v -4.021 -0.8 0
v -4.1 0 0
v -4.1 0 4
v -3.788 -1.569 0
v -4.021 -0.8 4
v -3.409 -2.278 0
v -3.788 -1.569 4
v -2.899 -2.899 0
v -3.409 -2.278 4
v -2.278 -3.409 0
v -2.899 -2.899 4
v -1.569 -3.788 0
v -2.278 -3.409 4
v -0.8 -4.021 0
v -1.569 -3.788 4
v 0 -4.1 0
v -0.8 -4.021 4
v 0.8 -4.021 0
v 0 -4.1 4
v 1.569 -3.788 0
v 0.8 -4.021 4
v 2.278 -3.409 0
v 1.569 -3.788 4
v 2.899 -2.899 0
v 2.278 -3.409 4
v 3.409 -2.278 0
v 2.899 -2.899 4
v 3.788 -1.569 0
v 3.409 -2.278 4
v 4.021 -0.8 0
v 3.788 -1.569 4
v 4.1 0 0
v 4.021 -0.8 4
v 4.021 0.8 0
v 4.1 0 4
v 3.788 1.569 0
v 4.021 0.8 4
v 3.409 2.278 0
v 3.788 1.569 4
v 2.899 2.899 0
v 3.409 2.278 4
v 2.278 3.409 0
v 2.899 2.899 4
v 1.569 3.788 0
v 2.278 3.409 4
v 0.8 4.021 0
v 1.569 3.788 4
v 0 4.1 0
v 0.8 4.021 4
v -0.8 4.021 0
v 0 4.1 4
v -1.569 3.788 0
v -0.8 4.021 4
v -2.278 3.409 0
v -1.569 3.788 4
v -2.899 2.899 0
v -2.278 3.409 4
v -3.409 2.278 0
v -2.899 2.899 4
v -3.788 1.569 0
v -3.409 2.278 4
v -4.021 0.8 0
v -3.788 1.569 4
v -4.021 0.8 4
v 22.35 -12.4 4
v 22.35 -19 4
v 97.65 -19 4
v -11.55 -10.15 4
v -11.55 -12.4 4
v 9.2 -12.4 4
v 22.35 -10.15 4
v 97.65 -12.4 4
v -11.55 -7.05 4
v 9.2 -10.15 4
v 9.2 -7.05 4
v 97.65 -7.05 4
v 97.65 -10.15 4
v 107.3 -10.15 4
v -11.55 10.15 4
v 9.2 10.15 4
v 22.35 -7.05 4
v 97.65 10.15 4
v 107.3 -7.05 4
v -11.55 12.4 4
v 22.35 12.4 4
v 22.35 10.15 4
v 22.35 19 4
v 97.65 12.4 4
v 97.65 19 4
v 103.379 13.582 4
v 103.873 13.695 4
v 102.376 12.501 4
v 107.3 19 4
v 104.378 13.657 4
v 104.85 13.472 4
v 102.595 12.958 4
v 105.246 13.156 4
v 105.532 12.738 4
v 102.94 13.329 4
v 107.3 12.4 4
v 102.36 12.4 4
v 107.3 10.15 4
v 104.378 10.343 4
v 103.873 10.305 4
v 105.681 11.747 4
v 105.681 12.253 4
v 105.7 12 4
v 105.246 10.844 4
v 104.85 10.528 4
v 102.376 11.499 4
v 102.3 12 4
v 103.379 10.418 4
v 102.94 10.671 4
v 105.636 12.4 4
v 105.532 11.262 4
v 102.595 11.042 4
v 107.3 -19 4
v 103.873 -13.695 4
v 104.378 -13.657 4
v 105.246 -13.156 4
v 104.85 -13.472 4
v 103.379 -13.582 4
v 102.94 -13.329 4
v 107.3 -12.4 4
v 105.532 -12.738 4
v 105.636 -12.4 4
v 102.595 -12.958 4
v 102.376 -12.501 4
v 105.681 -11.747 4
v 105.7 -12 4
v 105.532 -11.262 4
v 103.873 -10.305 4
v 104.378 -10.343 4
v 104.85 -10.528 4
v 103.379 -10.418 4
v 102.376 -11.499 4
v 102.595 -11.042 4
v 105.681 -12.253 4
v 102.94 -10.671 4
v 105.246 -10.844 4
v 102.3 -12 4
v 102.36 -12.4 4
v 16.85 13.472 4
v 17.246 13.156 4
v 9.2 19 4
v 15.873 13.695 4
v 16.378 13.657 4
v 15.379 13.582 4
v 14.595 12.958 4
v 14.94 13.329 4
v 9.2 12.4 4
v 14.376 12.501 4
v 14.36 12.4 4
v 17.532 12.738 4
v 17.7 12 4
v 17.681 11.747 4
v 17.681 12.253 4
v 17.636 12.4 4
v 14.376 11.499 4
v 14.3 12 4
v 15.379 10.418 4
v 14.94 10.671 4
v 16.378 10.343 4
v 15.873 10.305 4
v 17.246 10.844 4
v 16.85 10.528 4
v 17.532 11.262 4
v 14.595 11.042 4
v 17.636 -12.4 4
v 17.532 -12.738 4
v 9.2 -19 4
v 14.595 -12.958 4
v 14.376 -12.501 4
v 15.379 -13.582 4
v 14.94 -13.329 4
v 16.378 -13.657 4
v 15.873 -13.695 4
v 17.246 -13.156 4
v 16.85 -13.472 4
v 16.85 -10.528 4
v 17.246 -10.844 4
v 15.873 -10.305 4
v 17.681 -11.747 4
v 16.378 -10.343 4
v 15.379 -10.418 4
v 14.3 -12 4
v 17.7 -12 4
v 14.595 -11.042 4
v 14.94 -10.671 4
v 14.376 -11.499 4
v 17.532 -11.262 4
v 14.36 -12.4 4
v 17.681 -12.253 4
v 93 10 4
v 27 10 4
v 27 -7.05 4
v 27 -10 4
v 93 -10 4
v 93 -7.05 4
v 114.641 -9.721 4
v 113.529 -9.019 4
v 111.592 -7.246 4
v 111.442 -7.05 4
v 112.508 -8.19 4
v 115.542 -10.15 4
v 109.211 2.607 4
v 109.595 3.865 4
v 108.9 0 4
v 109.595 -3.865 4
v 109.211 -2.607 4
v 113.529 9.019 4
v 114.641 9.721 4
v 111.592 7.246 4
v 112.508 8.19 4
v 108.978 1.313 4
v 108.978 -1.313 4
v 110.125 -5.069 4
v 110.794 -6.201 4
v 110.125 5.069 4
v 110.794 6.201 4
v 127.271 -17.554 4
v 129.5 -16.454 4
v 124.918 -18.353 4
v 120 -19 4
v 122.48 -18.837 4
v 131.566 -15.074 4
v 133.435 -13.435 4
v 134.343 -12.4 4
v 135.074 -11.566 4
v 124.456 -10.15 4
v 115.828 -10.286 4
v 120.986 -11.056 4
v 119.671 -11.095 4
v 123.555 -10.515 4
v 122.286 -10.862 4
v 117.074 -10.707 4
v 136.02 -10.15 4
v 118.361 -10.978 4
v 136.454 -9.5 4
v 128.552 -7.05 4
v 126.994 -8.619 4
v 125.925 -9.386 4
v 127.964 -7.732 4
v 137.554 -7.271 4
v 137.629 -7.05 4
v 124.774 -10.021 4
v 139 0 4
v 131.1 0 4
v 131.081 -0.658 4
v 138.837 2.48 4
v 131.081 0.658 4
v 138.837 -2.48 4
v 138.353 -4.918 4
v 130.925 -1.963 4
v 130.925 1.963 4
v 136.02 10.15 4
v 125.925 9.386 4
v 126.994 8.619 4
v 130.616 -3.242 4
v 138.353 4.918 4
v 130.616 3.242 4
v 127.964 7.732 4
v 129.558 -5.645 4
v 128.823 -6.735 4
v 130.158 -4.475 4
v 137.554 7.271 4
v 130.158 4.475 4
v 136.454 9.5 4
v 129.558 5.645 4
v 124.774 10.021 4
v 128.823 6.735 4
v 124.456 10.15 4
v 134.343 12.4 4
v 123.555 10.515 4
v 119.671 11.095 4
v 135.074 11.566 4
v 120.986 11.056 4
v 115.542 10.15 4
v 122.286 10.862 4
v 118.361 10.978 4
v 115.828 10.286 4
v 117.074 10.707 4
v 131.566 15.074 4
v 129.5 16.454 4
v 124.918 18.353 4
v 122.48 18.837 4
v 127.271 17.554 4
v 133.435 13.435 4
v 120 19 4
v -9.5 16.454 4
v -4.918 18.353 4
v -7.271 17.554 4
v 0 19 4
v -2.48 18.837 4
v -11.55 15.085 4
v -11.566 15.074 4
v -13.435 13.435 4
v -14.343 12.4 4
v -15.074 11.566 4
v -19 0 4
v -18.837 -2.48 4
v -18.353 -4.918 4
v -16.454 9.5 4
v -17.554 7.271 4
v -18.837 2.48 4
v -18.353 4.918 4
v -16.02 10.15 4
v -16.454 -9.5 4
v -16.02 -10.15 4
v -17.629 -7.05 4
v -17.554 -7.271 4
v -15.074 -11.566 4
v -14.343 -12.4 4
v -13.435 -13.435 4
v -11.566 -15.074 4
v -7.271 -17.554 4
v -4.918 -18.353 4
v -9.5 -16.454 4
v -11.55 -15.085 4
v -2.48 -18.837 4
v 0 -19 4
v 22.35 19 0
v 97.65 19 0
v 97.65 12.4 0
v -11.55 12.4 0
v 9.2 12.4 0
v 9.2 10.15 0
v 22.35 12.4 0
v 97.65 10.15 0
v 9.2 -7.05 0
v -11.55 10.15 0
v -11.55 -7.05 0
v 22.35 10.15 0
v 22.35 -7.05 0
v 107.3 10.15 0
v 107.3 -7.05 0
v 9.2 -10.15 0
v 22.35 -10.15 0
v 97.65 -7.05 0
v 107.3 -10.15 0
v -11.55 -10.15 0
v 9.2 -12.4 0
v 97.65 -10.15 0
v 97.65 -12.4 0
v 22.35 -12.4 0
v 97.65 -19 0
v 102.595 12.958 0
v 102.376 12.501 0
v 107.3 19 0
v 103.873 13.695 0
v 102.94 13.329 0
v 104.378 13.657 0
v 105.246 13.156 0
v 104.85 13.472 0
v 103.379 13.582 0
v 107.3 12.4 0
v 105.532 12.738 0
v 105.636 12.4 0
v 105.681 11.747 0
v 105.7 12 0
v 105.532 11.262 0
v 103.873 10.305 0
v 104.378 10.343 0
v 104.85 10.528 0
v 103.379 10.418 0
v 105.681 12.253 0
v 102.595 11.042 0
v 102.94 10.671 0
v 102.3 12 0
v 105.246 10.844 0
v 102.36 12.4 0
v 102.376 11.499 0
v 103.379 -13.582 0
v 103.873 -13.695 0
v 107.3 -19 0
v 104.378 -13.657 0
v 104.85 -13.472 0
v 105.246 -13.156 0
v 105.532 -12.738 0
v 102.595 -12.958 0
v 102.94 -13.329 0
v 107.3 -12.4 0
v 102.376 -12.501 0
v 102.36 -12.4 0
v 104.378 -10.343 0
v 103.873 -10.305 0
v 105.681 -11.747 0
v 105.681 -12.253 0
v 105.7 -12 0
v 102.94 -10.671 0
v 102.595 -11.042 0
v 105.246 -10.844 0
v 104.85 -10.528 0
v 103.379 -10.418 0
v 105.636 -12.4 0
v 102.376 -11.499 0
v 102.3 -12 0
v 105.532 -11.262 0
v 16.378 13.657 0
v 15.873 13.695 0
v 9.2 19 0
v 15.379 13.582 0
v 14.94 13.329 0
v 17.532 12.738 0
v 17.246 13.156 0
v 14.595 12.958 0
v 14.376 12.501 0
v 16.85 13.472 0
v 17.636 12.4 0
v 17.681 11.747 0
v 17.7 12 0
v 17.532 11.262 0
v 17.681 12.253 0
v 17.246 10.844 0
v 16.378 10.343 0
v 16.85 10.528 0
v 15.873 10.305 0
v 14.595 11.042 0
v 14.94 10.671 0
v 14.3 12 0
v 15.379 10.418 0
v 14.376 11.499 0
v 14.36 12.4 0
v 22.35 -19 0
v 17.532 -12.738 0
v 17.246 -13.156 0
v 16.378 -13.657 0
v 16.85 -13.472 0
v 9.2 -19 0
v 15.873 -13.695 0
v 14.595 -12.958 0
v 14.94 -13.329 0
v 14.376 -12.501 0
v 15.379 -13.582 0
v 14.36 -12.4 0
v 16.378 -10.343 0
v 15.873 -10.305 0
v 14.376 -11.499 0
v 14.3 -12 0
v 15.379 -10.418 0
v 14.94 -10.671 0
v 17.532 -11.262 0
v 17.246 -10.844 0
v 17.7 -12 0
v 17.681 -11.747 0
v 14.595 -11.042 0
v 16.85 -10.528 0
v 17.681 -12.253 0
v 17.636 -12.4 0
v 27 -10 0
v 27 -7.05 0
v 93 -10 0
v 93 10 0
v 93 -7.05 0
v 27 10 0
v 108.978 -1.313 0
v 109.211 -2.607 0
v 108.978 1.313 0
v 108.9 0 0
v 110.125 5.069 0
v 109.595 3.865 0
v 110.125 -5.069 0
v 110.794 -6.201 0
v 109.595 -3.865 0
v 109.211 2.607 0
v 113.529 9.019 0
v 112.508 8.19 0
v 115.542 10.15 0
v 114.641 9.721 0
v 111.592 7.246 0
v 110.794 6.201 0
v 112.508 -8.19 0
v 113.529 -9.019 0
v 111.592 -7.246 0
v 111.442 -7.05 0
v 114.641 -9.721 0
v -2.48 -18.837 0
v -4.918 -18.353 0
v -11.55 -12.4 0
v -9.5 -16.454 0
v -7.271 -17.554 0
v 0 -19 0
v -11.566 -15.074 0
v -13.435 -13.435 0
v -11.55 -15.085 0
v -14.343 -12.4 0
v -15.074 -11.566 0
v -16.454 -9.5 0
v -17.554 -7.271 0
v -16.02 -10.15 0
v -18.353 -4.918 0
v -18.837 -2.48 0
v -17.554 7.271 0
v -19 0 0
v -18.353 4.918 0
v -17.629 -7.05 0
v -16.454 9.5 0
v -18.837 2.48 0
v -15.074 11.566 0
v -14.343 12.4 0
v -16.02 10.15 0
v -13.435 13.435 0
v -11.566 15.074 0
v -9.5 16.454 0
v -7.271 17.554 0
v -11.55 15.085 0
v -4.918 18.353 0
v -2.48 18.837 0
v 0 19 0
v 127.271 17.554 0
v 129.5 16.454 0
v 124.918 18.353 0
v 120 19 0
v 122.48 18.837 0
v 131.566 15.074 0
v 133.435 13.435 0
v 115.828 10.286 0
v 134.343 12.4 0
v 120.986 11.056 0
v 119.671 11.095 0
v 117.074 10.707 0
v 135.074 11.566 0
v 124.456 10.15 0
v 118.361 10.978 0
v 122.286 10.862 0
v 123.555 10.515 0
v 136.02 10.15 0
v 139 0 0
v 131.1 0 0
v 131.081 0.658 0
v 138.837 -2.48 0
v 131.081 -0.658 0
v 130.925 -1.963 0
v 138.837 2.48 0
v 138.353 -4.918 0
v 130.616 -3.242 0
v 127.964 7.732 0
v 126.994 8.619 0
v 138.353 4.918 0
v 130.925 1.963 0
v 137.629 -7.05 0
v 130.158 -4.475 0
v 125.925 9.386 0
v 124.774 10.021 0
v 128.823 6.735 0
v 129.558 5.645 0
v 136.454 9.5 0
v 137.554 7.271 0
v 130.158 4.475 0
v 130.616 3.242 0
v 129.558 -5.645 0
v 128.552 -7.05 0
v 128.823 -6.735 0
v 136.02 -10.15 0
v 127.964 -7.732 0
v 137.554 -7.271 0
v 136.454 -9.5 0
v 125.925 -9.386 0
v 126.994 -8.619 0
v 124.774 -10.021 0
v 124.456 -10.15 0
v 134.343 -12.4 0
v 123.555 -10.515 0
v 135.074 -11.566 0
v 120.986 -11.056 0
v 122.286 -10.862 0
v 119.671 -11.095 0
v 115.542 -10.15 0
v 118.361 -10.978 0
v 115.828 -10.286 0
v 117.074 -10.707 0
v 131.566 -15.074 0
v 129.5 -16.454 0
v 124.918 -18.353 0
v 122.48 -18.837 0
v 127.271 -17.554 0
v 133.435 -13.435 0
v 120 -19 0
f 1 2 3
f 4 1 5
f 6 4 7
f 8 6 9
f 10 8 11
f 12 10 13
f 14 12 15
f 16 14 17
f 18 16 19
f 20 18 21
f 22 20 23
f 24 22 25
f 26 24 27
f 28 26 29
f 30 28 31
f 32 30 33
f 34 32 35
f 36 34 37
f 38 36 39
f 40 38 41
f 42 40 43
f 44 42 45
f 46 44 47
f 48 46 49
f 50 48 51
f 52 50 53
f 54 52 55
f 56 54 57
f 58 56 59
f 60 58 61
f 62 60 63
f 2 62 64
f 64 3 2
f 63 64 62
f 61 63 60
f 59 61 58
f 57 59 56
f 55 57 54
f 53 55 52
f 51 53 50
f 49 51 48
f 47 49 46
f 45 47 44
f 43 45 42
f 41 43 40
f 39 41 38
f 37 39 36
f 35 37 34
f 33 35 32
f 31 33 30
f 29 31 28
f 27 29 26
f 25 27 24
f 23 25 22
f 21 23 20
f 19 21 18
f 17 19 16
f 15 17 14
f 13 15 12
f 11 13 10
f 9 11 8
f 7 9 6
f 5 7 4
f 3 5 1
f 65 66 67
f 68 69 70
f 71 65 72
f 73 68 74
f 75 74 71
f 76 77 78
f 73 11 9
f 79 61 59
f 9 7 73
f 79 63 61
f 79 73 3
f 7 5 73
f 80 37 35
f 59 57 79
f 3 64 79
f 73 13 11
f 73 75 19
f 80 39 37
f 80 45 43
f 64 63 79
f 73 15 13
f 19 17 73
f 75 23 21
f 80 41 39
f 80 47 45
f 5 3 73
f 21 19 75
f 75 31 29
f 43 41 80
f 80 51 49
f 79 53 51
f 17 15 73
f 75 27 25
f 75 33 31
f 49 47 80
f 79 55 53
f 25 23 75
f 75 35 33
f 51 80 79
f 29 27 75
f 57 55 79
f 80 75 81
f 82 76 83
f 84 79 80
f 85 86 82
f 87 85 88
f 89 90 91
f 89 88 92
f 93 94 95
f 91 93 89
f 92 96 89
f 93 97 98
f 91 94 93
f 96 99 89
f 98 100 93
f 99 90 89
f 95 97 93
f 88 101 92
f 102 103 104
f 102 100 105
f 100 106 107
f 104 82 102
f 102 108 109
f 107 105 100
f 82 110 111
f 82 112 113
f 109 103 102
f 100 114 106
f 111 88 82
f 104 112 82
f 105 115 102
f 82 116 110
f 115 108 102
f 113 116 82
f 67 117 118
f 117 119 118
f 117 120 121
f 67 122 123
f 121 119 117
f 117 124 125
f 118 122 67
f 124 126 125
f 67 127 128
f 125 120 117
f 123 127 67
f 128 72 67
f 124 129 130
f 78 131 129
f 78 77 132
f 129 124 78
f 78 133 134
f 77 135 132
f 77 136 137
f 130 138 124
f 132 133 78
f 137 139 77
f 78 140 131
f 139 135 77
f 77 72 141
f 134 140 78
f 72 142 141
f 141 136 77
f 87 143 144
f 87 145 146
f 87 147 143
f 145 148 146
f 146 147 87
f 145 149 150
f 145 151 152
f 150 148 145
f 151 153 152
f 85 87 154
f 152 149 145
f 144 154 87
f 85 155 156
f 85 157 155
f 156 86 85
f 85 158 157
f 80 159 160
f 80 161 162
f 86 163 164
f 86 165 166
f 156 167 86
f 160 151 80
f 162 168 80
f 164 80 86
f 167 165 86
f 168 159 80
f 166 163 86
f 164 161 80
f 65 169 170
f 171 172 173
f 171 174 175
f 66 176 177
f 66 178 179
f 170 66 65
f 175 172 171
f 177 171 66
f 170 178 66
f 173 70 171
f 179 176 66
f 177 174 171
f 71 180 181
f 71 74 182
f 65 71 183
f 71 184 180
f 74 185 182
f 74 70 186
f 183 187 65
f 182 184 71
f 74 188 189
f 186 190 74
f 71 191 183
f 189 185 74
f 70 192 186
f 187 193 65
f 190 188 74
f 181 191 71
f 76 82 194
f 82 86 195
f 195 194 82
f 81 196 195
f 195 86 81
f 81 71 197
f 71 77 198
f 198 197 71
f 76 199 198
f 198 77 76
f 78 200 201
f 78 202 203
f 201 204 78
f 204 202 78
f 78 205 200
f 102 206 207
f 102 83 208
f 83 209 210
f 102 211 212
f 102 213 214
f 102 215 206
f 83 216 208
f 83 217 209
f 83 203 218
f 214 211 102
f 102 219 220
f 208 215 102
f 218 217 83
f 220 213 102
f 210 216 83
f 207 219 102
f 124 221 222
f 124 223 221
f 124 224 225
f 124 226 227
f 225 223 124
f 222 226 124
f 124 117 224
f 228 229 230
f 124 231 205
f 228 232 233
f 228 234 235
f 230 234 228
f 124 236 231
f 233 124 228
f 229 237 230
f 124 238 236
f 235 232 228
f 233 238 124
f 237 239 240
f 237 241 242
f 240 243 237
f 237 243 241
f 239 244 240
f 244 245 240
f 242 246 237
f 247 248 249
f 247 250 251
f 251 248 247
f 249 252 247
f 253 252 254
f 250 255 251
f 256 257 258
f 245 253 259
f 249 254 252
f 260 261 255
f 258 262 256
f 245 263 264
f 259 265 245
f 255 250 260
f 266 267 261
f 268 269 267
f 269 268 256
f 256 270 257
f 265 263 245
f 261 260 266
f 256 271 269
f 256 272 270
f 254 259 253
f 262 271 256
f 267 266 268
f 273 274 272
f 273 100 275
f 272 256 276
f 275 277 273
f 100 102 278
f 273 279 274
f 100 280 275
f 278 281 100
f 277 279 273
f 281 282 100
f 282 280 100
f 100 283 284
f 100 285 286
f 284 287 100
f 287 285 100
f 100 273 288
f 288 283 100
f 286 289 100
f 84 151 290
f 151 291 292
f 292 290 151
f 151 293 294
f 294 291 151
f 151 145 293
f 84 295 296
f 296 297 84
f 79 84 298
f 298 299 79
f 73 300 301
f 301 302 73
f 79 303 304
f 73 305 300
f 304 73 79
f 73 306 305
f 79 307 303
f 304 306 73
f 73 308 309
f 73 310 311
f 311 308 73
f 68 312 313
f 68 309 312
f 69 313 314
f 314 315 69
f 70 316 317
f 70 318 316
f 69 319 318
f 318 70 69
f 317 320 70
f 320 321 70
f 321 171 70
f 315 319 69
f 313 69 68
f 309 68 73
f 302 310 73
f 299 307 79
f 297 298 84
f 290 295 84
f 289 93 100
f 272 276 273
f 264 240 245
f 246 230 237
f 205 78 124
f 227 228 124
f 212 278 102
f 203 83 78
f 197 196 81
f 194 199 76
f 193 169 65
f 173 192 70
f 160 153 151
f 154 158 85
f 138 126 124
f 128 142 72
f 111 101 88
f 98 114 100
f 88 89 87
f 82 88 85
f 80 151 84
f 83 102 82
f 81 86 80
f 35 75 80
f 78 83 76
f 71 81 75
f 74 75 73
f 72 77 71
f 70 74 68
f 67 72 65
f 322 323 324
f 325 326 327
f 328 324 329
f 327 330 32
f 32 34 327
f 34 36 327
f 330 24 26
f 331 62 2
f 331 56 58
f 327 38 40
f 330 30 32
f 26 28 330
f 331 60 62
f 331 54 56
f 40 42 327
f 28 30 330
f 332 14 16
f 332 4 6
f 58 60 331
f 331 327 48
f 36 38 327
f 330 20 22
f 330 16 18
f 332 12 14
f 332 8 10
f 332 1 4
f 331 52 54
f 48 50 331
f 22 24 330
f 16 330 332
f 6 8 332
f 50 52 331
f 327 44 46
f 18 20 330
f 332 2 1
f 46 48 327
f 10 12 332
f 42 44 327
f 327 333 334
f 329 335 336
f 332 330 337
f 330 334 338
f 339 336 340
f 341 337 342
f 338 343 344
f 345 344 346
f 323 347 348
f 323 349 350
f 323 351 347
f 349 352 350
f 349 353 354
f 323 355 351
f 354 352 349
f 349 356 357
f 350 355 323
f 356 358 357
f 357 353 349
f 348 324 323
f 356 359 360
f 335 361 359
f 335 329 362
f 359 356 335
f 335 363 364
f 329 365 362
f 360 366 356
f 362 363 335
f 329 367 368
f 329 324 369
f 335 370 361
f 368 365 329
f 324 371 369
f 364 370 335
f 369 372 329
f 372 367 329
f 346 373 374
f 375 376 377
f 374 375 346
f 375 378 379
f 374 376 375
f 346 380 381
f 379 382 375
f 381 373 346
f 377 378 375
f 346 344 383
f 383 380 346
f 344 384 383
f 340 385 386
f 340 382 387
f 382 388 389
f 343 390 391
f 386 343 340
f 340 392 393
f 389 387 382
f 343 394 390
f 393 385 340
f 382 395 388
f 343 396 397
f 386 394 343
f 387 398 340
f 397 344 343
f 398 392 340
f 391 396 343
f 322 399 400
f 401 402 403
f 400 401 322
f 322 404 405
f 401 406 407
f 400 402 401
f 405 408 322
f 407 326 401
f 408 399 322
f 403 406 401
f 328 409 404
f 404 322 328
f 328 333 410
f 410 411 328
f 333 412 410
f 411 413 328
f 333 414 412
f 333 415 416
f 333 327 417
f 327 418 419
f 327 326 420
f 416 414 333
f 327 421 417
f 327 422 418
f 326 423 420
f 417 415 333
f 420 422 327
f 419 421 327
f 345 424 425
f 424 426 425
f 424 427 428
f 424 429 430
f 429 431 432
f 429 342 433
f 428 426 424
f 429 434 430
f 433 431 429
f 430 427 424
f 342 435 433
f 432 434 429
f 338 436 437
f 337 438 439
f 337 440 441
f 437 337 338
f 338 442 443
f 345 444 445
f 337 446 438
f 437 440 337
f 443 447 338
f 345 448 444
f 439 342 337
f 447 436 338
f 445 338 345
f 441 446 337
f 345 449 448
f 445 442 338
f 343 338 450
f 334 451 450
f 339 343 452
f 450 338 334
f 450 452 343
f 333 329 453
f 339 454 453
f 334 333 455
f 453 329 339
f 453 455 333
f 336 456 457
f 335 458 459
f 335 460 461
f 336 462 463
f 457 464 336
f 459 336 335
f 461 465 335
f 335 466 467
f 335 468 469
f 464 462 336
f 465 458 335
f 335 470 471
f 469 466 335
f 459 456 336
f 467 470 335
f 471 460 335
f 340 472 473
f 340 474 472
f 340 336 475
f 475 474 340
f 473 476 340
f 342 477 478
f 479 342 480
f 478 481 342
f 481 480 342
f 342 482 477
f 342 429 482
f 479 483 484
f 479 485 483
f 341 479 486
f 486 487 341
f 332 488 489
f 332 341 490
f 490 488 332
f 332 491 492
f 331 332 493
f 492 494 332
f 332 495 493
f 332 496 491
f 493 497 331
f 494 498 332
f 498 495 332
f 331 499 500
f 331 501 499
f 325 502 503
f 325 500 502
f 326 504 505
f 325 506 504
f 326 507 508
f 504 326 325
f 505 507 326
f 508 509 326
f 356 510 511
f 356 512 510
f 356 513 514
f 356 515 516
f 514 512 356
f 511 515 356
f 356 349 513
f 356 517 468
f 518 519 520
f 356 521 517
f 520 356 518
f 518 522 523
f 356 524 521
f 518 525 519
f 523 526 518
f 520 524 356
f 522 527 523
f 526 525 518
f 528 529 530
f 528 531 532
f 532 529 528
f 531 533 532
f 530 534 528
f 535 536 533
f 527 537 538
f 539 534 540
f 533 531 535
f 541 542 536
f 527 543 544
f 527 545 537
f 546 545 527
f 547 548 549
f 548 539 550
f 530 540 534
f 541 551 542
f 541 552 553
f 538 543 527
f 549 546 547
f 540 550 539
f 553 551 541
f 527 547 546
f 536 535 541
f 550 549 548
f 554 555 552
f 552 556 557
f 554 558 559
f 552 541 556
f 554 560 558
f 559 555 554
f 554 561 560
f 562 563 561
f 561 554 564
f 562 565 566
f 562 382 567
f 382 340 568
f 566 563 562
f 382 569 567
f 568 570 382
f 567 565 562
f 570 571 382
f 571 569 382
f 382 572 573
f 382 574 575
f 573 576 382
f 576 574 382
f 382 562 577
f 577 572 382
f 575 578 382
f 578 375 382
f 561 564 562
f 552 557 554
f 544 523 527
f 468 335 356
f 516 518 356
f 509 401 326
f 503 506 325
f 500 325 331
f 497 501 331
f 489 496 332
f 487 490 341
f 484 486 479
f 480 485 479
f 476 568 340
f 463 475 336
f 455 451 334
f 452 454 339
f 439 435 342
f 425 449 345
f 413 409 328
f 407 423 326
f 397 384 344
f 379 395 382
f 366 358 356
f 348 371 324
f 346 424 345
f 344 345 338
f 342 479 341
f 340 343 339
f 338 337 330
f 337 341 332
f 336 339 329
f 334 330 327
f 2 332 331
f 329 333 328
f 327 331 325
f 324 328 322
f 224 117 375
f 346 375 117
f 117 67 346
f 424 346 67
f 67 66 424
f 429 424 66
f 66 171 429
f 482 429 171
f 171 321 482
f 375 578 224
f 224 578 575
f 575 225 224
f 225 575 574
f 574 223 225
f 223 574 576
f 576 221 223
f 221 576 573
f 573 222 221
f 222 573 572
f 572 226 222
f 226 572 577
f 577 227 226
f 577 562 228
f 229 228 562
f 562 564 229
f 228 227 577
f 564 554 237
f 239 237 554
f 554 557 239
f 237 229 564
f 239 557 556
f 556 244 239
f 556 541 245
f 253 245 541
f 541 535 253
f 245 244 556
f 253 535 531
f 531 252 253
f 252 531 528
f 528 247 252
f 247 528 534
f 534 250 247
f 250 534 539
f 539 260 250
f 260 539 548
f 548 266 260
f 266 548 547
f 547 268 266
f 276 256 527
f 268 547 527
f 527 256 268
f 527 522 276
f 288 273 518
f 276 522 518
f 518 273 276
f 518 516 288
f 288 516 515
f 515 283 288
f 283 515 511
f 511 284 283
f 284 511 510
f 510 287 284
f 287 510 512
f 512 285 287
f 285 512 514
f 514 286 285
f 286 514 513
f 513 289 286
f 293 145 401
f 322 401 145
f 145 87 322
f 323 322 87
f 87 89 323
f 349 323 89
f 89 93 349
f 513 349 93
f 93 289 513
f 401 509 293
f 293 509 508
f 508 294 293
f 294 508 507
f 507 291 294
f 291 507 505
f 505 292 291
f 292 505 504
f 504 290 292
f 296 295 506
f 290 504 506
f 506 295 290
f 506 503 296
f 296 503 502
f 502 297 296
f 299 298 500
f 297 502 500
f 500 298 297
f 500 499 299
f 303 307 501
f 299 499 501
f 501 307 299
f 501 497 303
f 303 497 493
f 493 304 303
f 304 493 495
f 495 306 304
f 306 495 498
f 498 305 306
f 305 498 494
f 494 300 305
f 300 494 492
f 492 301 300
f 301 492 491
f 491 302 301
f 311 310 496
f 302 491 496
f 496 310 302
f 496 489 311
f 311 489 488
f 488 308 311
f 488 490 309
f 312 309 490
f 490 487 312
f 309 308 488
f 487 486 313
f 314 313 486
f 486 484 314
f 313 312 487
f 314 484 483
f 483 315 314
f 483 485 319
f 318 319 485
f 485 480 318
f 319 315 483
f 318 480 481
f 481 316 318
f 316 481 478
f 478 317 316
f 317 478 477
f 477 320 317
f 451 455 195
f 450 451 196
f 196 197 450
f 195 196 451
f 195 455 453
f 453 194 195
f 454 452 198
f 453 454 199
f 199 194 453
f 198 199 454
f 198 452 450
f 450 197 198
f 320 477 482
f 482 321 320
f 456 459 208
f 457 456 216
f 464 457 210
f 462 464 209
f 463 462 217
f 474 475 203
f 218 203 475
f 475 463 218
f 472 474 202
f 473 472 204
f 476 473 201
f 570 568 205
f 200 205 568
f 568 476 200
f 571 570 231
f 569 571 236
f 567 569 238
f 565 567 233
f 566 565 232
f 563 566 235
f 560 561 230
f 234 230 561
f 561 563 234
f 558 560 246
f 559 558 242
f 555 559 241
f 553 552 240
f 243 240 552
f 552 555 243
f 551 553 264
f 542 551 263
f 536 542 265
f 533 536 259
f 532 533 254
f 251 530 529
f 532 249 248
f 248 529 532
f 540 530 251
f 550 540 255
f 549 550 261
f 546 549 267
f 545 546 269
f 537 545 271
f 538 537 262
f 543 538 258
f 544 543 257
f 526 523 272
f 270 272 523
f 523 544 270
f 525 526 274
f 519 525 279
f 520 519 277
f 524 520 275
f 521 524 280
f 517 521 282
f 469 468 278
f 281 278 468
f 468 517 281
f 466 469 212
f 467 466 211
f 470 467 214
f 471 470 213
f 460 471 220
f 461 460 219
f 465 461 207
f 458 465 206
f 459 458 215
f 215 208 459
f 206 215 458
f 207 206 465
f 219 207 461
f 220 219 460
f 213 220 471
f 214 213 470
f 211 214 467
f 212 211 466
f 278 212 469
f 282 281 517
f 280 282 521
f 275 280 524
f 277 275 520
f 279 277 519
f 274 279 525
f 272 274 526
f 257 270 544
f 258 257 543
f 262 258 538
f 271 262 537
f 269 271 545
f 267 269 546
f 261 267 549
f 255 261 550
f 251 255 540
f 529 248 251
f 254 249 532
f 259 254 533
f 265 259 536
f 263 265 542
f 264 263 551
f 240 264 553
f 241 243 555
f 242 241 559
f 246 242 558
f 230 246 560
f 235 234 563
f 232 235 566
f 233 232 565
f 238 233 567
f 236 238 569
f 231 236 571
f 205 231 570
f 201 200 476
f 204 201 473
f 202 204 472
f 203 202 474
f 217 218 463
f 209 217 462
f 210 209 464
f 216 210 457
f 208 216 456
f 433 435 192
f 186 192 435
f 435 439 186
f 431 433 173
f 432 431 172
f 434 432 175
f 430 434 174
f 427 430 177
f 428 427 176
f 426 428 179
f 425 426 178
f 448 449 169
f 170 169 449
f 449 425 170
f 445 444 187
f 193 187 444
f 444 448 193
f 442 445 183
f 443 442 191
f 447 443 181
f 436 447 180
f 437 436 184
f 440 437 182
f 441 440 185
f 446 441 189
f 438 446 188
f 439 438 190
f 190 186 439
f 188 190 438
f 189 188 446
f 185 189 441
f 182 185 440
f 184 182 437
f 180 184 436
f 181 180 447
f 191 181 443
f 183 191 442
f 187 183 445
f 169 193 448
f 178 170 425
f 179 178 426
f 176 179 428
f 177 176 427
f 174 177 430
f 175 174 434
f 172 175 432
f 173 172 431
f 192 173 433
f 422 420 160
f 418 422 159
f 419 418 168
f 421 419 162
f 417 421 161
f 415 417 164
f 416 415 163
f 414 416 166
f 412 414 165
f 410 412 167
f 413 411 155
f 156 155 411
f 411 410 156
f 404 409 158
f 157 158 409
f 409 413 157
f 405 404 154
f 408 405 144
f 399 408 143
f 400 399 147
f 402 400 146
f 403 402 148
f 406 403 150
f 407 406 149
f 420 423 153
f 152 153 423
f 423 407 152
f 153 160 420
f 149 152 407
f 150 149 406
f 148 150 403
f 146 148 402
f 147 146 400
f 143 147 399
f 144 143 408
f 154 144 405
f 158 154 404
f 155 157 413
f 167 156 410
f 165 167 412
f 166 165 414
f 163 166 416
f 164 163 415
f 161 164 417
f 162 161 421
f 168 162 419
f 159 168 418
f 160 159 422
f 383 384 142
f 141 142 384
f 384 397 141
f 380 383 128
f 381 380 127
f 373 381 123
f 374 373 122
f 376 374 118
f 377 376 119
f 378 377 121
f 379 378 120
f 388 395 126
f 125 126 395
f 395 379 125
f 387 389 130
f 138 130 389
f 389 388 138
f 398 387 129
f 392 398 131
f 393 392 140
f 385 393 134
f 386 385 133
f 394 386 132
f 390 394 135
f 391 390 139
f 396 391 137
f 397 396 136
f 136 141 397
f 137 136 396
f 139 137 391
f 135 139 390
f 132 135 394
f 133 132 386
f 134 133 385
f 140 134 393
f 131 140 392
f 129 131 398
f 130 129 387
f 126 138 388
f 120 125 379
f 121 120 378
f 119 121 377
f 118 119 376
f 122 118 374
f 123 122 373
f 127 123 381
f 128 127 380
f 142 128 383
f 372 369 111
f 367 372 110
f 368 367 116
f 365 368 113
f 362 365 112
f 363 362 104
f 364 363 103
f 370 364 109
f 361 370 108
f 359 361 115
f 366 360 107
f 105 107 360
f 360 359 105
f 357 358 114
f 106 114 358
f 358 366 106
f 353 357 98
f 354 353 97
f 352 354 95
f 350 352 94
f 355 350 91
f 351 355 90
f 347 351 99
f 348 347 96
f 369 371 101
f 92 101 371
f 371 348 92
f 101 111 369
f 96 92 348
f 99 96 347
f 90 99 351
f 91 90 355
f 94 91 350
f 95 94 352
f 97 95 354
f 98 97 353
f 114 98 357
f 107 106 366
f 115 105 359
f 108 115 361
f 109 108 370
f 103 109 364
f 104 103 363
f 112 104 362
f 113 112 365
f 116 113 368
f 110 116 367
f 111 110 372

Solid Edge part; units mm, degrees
sketch "Sketch1" plane through (0, 0, 0) normal (0, 0, 1) x (1, 0, 0)
  line L0 (120, -19) -> (122.48, -18.8375)
  line L1 (122.48, -18.8375) -> (124.9176, -18.3526)
  line L2 (124.9176, -18.3526) -> (127.271, -17.5537)
  line L3 (127.271, -17.5537) -> (129.5, -16.4545)
  line L4 (129.5, -16.4545) -> (131.5665, -15.0737)
  line L5 (131.5665, -15.0737) -> (133.435, -13.435)
  line L6 (133.435, -13.435) -> (135.0737, -11.5665)
  line L7 (135.0737, -11.5665) -> (136.4545, -9.5)
  line L8 (136.4545, -9.5) -> (137.5537, -7.271)
  line L9 (137.5537, -7.271) -> (138.3526, -4.9176)
  line L10 (138.3526, -4.9176) -> (138.8375, -2.48)
  line L11 (138.8375, -2.48) -> (139, 0)
  line L12 (139, 0) -> (138.8375, 2.48)
  line L13 (138.8375, 2.48) -> (138.3526, 4.9176)
  line L14 (138.3526, 4.9176) -> (137.5537, 7.271)
  line L15 (137.5537, 7.271) -> (136.4545, 9.5)
  line L16 (136.4545, 9.5) -> (135.0737, 11.5665)
  line L17 (135.0737, 11.5665) -> (133.435, 13.435)
  line L18 (133.435, 13.435) -> (131.5665, 15.0737)
  line L19 (131.5665, 15.0737) -> (129.5, 16.4545)
  line L20 (129.5, 16.4545) -> (127.271, 17.5537)
  line L21 (127.271, 17.5537) -> (124.9176, 18.3526)
  line L22 (124.9176, 18.3526) -> (122.48, 18.8375)
  line L23 (122.48, 18.8375) -> (120, 19)
  line L24 (120, 19) -> (0, 19)
  line L25 (0, 19) -> (-2.48, 18.8375)
  line L26 (-2.48, 18.8375) -> (-4.9176, 18.3526)
  line L27 (-4.9176, 18.3526) -> (-7.271, 17.5537)
  line L28 (-7.271, 17.5537) -> (-9.5, 16.4545)
  line L29 (-9.5, 16.4545) -> (-11.5665, 15.0737)
  line L30 (-11.5665, 15.0737) -> (-13.435, 13.435)
  line L31 (-13.435, 13.435) -> (-15.0737, 11.5665)
  line L32 (-15.0737, 11.5665) -> (-16.4545, 9.5)
  line L33 (-16.4545, 9.5) -> (-17.5537, 7.271)
  line L34 (-17.5537, 7.271) -> (-18.3526, 4.9176)
  line L35 (-18.3526, 4.9176) -> (-18.8375, 2.48)
  line L36 (-18.8375, 2.48) -> (-19, 0)
  line L37 (-19, 0) -> (-18.8375, -2.48)
  line L38 (-18.8375, -2.48) -> (-18.3526, -4.9176)
  line L39 (-18.3526, -4.9176) -> (-17.5537, -7.271)
  line L40 (-17.5537, -7.271) -> (-16.4545, -9.5)
  line L41 (-16.4545, -9.5) -> (-15.0737, -11.5665)
  line L42 (-15.0737, -11.5665) -> (-13.435, -13.435)
  line L43 (-13.435, -13.435) -> (-11.5665, -15.0737)
  line L44 (-11.5665, -15.0737) -> (-9.5, -16.4545)
  line L45 (-9.5, -16.4545) -> (-7.271, -17.5537)
  line L46 (-7.271, -17.5537) -> (-4.9176, -18.3526)
  line L47 (-4.9176, -18.3526) -> (-2.48, -18.8375)
  line L48 (-2.48, -18.8375) -> (0, -19)
  line L49 (0, -19) -> (120, -19)
  circle A0 centre (0, 0) radius 4.1
  circle A1 centre (120, 0) radius 11.1
  line L50 (27, -10) -> (93, -10)
  line L51 (93, -10) -> (93, 10)
  line L52 (93, 10) -> (27, 10)
  line L53 (27, 10) -> (27, -10)
  circle A2 centre (16, -12) radius 1.7
  circle A3 centre (16, 12) radius 1.7
  circle A4 centre (104, -12) radius 1.7
  circle A5 centre (104, 12) radius 1.7
extrude "Protrusion1" add sketch "Sketch1" along normal blind 4
